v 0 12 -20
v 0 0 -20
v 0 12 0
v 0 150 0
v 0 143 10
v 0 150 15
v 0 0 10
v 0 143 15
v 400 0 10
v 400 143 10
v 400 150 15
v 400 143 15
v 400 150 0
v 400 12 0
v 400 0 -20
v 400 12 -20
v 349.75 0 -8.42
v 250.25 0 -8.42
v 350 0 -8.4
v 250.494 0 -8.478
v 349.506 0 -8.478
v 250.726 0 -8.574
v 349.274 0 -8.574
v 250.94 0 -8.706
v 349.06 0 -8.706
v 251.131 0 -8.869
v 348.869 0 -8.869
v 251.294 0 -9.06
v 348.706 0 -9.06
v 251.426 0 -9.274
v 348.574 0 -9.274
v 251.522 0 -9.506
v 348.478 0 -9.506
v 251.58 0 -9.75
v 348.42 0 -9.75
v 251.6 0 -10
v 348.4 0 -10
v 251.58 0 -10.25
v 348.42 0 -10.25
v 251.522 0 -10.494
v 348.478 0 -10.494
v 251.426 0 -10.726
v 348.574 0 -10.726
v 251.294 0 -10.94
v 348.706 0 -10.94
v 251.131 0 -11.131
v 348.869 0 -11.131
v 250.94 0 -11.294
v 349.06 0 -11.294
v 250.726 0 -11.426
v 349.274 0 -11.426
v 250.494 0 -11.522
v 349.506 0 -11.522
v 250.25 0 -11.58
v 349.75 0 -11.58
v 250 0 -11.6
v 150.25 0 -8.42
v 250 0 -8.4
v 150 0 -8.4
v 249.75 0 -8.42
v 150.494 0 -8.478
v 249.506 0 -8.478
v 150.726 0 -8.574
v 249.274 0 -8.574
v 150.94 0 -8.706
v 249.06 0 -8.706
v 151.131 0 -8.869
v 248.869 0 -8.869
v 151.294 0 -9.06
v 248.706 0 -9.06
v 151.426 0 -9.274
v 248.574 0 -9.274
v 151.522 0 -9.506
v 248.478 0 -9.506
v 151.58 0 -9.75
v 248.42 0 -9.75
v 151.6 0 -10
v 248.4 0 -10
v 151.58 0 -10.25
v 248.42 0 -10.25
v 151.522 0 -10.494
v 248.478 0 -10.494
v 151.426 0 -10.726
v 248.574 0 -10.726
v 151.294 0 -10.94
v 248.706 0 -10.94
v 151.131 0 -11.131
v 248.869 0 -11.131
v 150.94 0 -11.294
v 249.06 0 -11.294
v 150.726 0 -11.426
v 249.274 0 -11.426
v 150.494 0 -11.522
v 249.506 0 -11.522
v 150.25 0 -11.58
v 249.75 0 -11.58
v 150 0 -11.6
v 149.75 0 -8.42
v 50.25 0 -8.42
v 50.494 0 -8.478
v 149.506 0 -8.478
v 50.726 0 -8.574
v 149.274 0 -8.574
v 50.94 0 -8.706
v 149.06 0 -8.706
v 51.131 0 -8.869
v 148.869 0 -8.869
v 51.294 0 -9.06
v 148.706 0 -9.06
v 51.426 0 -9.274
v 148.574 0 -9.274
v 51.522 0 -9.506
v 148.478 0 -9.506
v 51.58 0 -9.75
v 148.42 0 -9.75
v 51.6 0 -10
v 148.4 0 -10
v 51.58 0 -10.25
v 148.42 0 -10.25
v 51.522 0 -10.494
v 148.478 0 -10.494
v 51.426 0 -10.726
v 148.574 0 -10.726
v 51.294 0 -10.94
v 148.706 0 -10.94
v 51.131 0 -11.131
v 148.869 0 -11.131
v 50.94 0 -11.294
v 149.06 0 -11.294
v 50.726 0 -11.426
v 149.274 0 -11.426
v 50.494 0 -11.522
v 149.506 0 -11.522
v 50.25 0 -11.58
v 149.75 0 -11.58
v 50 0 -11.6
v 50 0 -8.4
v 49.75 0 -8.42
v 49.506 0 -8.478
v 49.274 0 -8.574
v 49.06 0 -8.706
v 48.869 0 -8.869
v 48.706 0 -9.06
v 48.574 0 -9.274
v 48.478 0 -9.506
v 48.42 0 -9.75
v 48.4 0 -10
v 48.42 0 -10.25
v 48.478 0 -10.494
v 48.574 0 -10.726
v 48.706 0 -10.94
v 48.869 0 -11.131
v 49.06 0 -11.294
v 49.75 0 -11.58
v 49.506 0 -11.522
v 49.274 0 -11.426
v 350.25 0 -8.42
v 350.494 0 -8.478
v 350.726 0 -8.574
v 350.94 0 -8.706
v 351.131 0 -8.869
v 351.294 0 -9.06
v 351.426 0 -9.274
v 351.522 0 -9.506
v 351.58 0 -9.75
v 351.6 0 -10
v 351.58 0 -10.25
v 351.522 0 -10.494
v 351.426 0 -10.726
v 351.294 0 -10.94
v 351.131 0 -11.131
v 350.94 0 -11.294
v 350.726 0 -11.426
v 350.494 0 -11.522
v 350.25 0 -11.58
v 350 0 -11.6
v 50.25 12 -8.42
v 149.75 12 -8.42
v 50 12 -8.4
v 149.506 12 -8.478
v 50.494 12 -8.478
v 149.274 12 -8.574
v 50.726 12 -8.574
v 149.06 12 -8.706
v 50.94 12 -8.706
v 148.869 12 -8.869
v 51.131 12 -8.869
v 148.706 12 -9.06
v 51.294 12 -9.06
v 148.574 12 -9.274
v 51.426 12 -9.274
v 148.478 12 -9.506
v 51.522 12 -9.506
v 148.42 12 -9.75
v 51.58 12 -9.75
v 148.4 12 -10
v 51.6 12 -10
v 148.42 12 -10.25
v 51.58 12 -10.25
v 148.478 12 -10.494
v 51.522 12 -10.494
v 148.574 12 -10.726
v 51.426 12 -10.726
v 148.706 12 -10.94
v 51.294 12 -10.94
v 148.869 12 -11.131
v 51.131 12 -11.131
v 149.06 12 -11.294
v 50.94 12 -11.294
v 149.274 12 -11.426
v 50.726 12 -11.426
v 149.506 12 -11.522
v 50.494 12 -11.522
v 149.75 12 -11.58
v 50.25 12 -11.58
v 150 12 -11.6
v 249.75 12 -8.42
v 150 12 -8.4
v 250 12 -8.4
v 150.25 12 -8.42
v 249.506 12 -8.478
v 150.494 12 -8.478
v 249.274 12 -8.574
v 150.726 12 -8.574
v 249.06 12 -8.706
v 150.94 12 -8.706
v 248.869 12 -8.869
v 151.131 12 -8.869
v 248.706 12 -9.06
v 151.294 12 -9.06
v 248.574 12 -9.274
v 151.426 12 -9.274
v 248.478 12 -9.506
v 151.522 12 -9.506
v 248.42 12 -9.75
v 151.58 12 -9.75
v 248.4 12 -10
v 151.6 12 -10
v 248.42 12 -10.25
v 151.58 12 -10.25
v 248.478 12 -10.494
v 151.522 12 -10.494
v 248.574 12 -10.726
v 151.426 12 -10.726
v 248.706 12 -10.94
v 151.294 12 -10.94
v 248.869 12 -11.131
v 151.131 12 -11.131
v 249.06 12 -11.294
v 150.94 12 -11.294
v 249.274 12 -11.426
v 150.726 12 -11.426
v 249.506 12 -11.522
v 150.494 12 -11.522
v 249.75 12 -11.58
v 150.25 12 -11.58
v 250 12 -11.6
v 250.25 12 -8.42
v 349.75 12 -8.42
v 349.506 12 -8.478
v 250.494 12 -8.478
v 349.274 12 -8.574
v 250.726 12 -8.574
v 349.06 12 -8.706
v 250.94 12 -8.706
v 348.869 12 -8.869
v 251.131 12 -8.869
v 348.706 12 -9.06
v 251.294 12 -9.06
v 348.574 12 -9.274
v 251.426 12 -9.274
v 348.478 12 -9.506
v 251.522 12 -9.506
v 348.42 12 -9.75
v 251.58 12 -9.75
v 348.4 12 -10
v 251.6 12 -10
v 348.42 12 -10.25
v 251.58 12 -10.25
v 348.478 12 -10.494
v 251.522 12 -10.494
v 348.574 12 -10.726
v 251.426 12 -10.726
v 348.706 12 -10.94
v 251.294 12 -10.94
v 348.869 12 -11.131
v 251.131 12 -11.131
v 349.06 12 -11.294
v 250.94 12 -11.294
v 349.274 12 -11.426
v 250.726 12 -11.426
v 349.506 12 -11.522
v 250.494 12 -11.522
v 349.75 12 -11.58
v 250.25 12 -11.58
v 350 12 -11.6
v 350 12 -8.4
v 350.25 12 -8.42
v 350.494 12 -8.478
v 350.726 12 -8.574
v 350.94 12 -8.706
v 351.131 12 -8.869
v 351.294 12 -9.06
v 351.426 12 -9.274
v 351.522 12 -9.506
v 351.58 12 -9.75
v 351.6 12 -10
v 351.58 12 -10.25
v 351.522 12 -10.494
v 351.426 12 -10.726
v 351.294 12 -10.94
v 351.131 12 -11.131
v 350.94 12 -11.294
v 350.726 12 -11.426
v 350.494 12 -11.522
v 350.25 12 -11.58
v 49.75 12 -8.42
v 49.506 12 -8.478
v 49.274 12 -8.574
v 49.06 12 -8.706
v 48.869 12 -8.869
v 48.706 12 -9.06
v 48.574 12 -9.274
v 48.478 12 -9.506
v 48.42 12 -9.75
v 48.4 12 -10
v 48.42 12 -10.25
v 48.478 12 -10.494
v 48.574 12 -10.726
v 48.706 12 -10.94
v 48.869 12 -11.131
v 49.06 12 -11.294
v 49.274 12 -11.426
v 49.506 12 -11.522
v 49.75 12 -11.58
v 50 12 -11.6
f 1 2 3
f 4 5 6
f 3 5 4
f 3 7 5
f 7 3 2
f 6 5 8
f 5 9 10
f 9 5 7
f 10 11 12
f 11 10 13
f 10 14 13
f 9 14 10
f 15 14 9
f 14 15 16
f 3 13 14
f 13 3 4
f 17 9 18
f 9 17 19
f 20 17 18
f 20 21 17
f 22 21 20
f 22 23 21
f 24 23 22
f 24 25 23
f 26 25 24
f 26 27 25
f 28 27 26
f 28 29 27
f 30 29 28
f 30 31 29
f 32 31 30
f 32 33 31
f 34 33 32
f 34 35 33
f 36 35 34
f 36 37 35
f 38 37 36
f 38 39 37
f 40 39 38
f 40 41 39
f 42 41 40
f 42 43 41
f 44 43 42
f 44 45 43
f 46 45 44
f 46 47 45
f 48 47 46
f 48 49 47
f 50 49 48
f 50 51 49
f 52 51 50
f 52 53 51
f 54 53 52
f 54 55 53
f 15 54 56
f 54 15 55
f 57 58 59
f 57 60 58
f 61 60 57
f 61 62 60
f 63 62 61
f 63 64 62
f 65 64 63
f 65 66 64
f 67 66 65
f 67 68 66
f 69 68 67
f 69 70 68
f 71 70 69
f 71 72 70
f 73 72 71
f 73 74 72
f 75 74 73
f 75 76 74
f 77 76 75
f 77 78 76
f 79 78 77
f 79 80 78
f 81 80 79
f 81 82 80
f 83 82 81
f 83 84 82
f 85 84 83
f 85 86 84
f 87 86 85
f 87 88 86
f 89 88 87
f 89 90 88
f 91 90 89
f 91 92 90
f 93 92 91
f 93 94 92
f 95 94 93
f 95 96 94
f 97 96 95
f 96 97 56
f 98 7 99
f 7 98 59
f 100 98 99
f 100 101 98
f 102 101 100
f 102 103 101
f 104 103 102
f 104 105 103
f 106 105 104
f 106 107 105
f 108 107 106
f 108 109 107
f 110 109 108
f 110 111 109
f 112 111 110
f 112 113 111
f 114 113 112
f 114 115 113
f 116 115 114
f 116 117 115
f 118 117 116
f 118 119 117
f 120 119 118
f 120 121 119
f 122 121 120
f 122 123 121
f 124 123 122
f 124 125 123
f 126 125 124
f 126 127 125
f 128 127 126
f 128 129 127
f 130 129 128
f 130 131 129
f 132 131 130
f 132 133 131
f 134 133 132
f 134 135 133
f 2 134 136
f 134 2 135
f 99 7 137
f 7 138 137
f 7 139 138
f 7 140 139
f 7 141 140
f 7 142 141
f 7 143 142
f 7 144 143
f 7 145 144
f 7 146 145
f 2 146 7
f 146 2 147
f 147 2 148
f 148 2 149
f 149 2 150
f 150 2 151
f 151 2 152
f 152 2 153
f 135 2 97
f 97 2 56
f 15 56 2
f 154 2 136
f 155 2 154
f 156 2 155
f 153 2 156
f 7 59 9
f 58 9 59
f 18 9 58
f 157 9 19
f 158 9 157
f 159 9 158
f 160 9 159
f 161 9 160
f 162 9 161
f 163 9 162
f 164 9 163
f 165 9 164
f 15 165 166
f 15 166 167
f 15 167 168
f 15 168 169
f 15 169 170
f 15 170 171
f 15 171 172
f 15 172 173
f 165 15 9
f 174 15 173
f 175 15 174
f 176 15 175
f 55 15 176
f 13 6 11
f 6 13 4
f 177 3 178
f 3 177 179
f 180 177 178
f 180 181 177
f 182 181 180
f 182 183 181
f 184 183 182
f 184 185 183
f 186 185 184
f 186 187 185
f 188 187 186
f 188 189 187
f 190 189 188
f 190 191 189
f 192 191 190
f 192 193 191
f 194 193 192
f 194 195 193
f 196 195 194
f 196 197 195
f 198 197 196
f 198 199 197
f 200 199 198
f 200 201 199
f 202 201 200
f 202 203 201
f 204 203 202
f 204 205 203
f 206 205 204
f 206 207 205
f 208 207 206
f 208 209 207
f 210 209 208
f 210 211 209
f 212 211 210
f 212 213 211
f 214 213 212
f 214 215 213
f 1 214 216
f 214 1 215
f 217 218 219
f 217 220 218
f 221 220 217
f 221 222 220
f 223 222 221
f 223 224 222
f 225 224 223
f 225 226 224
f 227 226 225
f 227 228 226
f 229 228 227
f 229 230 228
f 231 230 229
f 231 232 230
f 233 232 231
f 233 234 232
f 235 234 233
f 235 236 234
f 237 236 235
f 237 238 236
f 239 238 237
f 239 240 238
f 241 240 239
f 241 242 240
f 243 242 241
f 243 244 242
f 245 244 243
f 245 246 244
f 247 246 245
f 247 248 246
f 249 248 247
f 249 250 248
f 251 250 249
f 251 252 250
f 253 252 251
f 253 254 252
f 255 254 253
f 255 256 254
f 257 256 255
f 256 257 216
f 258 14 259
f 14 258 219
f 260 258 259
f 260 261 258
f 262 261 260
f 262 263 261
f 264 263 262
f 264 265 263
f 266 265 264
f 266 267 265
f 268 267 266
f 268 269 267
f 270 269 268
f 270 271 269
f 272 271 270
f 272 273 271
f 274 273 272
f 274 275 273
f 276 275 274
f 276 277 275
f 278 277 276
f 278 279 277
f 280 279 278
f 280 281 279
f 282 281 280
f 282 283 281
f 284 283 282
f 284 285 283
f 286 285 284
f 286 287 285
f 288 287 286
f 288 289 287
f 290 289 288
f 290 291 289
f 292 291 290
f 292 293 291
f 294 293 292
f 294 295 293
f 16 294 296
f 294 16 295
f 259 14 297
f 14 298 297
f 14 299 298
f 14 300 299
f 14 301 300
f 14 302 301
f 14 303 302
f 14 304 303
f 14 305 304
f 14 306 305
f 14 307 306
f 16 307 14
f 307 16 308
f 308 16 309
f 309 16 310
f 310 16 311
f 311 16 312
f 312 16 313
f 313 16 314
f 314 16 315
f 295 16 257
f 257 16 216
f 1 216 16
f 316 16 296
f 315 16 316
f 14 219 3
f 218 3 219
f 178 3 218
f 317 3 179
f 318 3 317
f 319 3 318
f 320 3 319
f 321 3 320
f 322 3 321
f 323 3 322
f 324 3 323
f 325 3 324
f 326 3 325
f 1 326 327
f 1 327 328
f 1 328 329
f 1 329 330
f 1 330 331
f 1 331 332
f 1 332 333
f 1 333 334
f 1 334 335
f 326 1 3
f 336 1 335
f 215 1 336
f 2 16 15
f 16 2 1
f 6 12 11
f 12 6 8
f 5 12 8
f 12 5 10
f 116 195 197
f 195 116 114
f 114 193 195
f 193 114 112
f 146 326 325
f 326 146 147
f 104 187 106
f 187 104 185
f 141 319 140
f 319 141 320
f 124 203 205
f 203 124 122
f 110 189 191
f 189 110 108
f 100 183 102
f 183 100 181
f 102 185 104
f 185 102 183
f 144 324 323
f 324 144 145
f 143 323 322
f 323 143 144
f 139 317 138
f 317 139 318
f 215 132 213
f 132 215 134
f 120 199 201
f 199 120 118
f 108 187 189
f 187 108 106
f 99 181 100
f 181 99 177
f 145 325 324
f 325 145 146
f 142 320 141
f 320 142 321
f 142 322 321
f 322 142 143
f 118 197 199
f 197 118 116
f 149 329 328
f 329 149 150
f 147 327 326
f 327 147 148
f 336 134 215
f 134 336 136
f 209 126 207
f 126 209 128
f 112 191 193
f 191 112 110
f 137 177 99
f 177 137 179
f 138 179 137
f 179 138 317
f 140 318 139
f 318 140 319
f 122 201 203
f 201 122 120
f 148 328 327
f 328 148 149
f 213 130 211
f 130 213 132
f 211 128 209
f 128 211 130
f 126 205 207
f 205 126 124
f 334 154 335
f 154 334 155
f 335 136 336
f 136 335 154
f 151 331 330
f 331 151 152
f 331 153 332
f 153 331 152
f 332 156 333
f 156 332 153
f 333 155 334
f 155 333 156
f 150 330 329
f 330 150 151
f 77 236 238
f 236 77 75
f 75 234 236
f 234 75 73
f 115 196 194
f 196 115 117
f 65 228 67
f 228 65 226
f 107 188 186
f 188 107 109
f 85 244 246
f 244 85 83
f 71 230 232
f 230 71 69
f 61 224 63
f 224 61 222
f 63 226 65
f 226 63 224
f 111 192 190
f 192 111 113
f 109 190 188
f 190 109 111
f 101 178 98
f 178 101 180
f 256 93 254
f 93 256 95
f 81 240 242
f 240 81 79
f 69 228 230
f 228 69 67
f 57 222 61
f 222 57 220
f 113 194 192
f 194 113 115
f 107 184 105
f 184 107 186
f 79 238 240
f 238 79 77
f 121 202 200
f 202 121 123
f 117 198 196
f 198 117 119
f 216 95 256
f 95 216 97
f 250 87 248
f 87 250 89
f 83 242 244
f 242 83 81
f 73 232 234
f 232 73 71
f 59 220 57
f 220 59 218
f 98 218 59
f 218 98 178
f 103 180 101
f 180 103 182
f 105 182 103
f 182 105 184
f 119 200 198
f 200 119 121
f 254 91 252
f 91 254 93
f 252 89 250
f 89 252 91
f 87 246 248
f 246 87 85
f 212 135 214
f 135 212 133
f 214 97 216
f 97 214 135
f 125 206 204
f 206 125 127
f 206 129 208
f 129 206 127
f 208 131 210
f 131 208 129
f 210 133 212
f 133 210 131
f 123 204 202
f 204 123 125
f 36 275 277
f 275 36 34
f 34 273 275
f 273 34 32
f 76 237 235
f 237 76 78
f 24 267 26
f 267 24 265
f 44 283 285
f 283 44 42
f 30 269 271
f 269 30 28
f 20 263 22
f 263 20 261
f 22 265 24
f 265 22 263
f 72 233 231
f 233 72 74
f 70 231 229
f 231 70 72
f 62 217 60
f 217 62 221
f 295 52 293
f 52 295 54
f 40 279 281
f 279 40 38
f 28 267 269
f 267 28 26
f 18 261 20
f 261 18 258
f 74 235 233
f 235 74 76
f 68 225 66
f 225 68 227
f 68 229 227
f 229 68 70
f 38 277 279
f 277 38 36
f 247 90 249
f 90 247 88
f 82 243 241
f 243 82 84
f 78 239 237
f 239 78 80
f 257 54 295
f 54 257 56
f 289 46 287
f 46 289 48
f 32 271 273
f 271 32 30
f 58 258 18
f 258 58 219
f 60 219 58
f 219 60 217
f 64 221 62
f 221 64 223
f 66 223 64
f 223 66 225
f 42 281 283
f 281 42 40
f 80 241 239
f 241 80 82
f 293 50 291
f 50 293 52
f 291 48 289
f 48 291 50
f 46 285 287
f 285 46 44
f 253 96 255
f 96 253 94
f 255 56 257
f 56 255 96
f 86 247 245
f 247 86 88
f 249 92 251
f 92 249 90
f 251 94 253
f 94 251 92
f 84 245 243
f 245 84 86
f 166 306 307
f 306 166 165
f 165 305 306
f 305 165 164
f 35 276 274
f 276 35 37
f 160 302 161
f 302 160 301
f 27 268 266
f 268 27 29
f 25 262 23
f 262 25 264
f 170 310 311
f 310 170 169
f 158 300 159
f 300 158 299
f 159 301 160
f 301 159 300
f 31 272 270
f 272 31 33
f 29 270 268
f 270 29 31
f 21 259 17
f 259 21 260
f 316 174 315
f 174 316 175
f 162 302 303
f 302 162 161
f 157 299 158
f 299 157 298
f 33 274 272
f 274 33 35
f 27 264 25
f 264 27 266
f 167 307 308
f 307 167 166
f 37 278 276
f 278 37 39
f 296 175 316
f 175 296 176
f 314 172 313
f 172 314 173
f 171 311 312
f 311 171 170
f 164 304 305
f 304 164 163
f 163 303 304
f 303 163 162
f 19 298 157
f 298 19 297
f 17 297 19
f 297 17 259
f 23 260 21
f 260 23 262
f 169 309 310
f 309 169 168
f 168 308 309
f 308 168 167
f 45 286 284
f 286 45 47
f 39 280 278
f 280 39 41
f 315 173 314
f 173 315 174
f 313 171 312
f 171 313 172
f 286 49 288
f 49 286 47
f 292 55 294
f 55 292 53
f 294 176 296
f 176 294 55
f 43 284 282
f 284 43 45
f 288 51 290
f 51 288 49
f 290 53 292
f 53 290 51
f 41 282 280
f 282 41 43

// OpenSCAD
// Parameters
tray_length = 400;
tray_width = 150;
tray_height = 15;
slope_depth = 8;
base_thickness = 20;
wedge_thick = 10;
hole_diameter = 3.2;
hole_depth = base_thickness + 50;
base_hole_position = 50;

// === Solid Body ===
difference() {
    union() {
        // Tray
        cube([tray_length, tray_width, 10]);

        // Base block
        translate([0, 0, -base_thickness])
            cube([tray_length, wedge_thick + 2, base_thickness]);
            
        // Bung block
        translate([0, tray_width - 7, 0])
            cube([tray_length, wedge_thick - 3, 15]);
    }

    // === Hole 1 ===
    translate([base_hole_position, 30, -base_thickness + 10])  // position in tray XY, height Z
        rotate([90, 0, 0])
            cylinder(d=hole_diameter, h=hole_depth, $fn=40);

    // === Hole 2 ===
    translate([base_hole_position + 100, 30, -base_thickness + 10])
        rotate([90, 0, 0])
            cylinder(d=hole_diameter, h=hole_depth, $fn=40);
    
    // === Hole 3 ===
    translate([base_hole_position + 200, 30, -base_thickness + 10])
        rotate([90, 0, 0])
            cylinder(d=hole_diameter, h=hole_depth, $fn=40);
    
    // === Hole 4 ===
    translate([base_hole_position + 300, 30, -base_thickness + 10])
        rotate([90, 0, 0])
            cylinder(d=hole_diameter, h=hole_depth, $fn=40);
    
    // === Hole 5 ===
    translate([base_hole_position + 400, 30, -base_thickness + 10])
        rotate([90, 0, 0])
            cylinder(d=hole_diameter, h=hole_depth, $fn=40);
            
    // === Hole 6 ===
    translate([base_hole_position + 500, 30, -base_thickness + 10])
        rotate([90, 0, 0])
            cylinder(d=hole_diameter, h=hole_depth, $fn=40);
            
    // === Hole 7 ===
    translate([base_hole_position + 600, 30, -base_thickness + 10])
        rotate([90, 0, 0])
            cylinder(d=hole_diameter, h=hole_depth, $fn=40);
            
    // === Hole 8 ===
    translate([base_hole_position + 700, 30, -base_thickness + 10])
        rotate([90, 0, 0])
            cylinder(d=hole_diameter, h=hole_depth, $fn=40);
            
}
